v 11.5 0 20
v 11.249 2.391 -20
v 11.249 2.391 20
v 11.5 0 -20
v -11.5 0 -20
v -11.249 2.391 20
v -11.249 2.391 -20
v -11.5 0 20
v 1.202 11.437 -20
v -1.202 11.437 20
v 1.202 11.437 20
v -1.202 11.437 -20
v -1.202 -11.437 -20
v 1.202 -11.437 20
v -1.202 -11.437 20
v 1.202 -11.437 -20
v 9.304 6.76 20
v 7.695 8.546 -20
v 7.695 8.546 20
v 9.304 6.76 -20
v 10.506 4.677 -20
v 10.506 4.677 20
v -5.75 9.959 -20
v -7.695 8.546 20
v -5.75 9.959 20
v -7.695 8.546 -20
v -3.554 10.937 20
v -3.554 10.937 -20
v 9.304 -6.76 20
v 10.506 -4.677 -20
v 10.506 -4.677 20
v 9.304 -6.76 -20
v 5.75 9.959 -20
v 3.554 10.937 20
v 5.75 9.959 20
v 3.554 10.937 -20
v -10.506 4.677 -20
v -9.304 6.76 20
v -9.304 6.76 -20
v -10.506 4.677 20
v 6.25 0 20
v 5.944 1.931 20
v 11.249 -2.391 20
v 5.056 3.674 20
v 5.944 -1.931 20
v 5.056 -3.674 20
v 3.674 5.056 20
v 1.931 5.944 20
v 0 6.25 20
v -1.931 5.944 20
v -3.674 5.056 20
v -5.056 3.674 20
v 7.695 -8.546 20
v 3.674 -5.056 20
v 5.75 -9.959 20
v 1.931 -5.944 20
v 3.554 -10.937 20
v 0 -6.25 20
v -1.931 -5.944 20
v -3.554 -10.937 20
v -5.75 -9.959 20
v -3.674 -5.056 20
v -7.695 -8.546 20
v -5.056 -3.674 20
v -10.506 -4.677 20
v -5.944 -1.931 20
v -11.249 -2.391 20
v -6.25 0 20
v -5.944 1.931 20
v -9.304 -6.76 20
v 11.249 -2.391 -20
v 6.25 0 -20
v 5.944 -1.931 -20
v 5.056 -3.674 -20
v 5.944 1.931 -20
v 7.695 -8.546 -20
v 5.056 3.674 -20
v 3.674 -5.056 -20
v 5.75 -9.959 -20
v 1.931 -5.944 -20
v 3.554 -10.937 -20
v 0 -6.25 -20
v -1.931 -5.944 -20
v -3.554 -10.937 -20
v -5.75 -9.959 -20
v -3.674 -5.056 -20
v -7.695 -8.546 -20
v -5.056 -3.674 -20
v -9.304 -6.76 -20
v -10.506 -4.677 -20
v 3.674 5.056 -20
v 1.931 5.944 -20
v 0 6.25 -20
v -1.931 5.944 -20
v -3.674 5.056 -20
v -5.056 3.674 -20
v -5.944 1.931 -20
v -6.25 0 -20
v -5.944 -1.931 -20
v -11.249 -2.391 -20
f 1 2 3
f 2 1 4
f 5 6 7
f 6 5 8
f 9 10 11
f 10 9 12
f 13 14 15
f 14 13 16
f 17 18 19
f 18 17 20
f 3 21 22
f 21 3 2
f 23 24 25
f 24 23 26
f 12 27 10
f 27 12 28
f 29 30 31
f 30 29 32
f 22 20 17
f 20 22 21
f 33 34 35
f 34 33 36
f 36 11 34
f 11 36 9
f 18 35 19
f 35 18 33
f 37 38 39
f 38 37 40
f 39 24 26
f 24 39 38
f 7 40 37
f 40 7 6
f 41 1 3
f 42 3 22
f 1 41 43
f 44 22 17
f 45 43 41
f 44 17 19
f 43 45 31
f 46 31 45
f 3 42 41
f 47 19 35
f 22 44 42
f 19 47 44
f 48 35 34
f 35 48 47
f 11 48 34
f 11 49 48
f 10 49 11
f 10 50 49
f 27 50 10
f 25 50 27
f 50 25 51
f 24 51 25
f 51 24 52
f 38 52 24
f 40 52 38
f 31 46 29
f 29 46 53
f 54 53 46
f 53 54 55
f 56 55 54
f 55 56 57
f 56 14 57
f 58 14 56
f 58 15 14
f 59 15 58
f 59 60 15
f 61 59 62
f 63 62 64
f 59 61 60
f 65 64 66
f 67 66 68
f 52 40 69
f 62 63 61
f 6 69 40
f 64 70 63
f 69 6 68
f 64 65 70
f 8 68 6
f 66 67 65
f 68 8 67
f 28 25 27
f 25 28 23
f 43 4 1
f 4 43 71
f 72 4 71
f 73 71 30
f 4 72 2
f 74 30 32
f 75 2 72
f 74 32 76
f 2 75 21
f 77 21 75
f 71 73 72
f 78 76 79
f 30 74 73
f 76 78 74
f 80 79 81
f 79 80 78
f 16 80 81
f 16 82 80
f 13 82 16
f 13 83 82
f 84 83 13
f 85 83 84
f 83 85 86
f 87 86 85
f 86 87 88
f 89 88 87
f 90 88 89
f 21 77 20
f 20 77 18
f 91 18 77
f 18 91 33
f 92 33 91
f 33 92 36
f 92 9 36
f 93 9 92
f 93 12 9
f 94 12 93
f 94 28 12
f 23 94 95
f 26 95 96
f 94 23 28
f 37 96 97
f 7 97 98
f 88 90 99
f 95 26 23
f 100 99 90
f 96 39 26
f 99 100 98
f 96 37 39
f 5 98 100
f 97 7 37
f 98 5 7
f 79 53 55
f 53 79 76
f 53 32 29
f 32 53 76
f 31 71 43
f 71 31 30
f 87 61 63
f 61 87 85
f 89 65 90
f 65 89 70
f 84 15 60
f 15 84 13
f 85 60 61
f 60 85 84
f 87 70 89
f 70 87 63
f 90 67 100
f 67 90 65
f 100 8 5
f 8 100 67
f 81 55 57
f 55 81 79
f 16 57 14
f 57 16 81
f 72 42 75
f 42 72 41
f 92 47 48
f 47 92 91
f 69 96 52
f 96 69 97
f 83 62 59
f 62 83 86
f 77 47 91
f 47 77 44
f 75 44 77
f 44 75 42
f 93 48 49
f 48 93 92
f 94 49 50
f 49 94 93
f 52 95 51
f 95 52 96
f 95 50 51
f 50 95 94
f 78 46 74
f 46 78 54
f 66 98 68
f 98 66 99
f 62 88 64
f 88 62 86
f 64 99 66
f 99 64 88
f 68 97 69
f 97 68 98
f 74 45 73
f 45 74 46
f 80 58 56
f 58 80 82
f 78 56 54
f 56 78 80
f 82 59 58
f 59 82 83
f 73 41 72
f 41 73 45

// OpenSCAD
difference() {
    cylinder(h=40, r=11.5, center=true);
    
    translate([0, 0, -1]) {
        cylinder(h=43, r=6.25, center=true);
    }
}
